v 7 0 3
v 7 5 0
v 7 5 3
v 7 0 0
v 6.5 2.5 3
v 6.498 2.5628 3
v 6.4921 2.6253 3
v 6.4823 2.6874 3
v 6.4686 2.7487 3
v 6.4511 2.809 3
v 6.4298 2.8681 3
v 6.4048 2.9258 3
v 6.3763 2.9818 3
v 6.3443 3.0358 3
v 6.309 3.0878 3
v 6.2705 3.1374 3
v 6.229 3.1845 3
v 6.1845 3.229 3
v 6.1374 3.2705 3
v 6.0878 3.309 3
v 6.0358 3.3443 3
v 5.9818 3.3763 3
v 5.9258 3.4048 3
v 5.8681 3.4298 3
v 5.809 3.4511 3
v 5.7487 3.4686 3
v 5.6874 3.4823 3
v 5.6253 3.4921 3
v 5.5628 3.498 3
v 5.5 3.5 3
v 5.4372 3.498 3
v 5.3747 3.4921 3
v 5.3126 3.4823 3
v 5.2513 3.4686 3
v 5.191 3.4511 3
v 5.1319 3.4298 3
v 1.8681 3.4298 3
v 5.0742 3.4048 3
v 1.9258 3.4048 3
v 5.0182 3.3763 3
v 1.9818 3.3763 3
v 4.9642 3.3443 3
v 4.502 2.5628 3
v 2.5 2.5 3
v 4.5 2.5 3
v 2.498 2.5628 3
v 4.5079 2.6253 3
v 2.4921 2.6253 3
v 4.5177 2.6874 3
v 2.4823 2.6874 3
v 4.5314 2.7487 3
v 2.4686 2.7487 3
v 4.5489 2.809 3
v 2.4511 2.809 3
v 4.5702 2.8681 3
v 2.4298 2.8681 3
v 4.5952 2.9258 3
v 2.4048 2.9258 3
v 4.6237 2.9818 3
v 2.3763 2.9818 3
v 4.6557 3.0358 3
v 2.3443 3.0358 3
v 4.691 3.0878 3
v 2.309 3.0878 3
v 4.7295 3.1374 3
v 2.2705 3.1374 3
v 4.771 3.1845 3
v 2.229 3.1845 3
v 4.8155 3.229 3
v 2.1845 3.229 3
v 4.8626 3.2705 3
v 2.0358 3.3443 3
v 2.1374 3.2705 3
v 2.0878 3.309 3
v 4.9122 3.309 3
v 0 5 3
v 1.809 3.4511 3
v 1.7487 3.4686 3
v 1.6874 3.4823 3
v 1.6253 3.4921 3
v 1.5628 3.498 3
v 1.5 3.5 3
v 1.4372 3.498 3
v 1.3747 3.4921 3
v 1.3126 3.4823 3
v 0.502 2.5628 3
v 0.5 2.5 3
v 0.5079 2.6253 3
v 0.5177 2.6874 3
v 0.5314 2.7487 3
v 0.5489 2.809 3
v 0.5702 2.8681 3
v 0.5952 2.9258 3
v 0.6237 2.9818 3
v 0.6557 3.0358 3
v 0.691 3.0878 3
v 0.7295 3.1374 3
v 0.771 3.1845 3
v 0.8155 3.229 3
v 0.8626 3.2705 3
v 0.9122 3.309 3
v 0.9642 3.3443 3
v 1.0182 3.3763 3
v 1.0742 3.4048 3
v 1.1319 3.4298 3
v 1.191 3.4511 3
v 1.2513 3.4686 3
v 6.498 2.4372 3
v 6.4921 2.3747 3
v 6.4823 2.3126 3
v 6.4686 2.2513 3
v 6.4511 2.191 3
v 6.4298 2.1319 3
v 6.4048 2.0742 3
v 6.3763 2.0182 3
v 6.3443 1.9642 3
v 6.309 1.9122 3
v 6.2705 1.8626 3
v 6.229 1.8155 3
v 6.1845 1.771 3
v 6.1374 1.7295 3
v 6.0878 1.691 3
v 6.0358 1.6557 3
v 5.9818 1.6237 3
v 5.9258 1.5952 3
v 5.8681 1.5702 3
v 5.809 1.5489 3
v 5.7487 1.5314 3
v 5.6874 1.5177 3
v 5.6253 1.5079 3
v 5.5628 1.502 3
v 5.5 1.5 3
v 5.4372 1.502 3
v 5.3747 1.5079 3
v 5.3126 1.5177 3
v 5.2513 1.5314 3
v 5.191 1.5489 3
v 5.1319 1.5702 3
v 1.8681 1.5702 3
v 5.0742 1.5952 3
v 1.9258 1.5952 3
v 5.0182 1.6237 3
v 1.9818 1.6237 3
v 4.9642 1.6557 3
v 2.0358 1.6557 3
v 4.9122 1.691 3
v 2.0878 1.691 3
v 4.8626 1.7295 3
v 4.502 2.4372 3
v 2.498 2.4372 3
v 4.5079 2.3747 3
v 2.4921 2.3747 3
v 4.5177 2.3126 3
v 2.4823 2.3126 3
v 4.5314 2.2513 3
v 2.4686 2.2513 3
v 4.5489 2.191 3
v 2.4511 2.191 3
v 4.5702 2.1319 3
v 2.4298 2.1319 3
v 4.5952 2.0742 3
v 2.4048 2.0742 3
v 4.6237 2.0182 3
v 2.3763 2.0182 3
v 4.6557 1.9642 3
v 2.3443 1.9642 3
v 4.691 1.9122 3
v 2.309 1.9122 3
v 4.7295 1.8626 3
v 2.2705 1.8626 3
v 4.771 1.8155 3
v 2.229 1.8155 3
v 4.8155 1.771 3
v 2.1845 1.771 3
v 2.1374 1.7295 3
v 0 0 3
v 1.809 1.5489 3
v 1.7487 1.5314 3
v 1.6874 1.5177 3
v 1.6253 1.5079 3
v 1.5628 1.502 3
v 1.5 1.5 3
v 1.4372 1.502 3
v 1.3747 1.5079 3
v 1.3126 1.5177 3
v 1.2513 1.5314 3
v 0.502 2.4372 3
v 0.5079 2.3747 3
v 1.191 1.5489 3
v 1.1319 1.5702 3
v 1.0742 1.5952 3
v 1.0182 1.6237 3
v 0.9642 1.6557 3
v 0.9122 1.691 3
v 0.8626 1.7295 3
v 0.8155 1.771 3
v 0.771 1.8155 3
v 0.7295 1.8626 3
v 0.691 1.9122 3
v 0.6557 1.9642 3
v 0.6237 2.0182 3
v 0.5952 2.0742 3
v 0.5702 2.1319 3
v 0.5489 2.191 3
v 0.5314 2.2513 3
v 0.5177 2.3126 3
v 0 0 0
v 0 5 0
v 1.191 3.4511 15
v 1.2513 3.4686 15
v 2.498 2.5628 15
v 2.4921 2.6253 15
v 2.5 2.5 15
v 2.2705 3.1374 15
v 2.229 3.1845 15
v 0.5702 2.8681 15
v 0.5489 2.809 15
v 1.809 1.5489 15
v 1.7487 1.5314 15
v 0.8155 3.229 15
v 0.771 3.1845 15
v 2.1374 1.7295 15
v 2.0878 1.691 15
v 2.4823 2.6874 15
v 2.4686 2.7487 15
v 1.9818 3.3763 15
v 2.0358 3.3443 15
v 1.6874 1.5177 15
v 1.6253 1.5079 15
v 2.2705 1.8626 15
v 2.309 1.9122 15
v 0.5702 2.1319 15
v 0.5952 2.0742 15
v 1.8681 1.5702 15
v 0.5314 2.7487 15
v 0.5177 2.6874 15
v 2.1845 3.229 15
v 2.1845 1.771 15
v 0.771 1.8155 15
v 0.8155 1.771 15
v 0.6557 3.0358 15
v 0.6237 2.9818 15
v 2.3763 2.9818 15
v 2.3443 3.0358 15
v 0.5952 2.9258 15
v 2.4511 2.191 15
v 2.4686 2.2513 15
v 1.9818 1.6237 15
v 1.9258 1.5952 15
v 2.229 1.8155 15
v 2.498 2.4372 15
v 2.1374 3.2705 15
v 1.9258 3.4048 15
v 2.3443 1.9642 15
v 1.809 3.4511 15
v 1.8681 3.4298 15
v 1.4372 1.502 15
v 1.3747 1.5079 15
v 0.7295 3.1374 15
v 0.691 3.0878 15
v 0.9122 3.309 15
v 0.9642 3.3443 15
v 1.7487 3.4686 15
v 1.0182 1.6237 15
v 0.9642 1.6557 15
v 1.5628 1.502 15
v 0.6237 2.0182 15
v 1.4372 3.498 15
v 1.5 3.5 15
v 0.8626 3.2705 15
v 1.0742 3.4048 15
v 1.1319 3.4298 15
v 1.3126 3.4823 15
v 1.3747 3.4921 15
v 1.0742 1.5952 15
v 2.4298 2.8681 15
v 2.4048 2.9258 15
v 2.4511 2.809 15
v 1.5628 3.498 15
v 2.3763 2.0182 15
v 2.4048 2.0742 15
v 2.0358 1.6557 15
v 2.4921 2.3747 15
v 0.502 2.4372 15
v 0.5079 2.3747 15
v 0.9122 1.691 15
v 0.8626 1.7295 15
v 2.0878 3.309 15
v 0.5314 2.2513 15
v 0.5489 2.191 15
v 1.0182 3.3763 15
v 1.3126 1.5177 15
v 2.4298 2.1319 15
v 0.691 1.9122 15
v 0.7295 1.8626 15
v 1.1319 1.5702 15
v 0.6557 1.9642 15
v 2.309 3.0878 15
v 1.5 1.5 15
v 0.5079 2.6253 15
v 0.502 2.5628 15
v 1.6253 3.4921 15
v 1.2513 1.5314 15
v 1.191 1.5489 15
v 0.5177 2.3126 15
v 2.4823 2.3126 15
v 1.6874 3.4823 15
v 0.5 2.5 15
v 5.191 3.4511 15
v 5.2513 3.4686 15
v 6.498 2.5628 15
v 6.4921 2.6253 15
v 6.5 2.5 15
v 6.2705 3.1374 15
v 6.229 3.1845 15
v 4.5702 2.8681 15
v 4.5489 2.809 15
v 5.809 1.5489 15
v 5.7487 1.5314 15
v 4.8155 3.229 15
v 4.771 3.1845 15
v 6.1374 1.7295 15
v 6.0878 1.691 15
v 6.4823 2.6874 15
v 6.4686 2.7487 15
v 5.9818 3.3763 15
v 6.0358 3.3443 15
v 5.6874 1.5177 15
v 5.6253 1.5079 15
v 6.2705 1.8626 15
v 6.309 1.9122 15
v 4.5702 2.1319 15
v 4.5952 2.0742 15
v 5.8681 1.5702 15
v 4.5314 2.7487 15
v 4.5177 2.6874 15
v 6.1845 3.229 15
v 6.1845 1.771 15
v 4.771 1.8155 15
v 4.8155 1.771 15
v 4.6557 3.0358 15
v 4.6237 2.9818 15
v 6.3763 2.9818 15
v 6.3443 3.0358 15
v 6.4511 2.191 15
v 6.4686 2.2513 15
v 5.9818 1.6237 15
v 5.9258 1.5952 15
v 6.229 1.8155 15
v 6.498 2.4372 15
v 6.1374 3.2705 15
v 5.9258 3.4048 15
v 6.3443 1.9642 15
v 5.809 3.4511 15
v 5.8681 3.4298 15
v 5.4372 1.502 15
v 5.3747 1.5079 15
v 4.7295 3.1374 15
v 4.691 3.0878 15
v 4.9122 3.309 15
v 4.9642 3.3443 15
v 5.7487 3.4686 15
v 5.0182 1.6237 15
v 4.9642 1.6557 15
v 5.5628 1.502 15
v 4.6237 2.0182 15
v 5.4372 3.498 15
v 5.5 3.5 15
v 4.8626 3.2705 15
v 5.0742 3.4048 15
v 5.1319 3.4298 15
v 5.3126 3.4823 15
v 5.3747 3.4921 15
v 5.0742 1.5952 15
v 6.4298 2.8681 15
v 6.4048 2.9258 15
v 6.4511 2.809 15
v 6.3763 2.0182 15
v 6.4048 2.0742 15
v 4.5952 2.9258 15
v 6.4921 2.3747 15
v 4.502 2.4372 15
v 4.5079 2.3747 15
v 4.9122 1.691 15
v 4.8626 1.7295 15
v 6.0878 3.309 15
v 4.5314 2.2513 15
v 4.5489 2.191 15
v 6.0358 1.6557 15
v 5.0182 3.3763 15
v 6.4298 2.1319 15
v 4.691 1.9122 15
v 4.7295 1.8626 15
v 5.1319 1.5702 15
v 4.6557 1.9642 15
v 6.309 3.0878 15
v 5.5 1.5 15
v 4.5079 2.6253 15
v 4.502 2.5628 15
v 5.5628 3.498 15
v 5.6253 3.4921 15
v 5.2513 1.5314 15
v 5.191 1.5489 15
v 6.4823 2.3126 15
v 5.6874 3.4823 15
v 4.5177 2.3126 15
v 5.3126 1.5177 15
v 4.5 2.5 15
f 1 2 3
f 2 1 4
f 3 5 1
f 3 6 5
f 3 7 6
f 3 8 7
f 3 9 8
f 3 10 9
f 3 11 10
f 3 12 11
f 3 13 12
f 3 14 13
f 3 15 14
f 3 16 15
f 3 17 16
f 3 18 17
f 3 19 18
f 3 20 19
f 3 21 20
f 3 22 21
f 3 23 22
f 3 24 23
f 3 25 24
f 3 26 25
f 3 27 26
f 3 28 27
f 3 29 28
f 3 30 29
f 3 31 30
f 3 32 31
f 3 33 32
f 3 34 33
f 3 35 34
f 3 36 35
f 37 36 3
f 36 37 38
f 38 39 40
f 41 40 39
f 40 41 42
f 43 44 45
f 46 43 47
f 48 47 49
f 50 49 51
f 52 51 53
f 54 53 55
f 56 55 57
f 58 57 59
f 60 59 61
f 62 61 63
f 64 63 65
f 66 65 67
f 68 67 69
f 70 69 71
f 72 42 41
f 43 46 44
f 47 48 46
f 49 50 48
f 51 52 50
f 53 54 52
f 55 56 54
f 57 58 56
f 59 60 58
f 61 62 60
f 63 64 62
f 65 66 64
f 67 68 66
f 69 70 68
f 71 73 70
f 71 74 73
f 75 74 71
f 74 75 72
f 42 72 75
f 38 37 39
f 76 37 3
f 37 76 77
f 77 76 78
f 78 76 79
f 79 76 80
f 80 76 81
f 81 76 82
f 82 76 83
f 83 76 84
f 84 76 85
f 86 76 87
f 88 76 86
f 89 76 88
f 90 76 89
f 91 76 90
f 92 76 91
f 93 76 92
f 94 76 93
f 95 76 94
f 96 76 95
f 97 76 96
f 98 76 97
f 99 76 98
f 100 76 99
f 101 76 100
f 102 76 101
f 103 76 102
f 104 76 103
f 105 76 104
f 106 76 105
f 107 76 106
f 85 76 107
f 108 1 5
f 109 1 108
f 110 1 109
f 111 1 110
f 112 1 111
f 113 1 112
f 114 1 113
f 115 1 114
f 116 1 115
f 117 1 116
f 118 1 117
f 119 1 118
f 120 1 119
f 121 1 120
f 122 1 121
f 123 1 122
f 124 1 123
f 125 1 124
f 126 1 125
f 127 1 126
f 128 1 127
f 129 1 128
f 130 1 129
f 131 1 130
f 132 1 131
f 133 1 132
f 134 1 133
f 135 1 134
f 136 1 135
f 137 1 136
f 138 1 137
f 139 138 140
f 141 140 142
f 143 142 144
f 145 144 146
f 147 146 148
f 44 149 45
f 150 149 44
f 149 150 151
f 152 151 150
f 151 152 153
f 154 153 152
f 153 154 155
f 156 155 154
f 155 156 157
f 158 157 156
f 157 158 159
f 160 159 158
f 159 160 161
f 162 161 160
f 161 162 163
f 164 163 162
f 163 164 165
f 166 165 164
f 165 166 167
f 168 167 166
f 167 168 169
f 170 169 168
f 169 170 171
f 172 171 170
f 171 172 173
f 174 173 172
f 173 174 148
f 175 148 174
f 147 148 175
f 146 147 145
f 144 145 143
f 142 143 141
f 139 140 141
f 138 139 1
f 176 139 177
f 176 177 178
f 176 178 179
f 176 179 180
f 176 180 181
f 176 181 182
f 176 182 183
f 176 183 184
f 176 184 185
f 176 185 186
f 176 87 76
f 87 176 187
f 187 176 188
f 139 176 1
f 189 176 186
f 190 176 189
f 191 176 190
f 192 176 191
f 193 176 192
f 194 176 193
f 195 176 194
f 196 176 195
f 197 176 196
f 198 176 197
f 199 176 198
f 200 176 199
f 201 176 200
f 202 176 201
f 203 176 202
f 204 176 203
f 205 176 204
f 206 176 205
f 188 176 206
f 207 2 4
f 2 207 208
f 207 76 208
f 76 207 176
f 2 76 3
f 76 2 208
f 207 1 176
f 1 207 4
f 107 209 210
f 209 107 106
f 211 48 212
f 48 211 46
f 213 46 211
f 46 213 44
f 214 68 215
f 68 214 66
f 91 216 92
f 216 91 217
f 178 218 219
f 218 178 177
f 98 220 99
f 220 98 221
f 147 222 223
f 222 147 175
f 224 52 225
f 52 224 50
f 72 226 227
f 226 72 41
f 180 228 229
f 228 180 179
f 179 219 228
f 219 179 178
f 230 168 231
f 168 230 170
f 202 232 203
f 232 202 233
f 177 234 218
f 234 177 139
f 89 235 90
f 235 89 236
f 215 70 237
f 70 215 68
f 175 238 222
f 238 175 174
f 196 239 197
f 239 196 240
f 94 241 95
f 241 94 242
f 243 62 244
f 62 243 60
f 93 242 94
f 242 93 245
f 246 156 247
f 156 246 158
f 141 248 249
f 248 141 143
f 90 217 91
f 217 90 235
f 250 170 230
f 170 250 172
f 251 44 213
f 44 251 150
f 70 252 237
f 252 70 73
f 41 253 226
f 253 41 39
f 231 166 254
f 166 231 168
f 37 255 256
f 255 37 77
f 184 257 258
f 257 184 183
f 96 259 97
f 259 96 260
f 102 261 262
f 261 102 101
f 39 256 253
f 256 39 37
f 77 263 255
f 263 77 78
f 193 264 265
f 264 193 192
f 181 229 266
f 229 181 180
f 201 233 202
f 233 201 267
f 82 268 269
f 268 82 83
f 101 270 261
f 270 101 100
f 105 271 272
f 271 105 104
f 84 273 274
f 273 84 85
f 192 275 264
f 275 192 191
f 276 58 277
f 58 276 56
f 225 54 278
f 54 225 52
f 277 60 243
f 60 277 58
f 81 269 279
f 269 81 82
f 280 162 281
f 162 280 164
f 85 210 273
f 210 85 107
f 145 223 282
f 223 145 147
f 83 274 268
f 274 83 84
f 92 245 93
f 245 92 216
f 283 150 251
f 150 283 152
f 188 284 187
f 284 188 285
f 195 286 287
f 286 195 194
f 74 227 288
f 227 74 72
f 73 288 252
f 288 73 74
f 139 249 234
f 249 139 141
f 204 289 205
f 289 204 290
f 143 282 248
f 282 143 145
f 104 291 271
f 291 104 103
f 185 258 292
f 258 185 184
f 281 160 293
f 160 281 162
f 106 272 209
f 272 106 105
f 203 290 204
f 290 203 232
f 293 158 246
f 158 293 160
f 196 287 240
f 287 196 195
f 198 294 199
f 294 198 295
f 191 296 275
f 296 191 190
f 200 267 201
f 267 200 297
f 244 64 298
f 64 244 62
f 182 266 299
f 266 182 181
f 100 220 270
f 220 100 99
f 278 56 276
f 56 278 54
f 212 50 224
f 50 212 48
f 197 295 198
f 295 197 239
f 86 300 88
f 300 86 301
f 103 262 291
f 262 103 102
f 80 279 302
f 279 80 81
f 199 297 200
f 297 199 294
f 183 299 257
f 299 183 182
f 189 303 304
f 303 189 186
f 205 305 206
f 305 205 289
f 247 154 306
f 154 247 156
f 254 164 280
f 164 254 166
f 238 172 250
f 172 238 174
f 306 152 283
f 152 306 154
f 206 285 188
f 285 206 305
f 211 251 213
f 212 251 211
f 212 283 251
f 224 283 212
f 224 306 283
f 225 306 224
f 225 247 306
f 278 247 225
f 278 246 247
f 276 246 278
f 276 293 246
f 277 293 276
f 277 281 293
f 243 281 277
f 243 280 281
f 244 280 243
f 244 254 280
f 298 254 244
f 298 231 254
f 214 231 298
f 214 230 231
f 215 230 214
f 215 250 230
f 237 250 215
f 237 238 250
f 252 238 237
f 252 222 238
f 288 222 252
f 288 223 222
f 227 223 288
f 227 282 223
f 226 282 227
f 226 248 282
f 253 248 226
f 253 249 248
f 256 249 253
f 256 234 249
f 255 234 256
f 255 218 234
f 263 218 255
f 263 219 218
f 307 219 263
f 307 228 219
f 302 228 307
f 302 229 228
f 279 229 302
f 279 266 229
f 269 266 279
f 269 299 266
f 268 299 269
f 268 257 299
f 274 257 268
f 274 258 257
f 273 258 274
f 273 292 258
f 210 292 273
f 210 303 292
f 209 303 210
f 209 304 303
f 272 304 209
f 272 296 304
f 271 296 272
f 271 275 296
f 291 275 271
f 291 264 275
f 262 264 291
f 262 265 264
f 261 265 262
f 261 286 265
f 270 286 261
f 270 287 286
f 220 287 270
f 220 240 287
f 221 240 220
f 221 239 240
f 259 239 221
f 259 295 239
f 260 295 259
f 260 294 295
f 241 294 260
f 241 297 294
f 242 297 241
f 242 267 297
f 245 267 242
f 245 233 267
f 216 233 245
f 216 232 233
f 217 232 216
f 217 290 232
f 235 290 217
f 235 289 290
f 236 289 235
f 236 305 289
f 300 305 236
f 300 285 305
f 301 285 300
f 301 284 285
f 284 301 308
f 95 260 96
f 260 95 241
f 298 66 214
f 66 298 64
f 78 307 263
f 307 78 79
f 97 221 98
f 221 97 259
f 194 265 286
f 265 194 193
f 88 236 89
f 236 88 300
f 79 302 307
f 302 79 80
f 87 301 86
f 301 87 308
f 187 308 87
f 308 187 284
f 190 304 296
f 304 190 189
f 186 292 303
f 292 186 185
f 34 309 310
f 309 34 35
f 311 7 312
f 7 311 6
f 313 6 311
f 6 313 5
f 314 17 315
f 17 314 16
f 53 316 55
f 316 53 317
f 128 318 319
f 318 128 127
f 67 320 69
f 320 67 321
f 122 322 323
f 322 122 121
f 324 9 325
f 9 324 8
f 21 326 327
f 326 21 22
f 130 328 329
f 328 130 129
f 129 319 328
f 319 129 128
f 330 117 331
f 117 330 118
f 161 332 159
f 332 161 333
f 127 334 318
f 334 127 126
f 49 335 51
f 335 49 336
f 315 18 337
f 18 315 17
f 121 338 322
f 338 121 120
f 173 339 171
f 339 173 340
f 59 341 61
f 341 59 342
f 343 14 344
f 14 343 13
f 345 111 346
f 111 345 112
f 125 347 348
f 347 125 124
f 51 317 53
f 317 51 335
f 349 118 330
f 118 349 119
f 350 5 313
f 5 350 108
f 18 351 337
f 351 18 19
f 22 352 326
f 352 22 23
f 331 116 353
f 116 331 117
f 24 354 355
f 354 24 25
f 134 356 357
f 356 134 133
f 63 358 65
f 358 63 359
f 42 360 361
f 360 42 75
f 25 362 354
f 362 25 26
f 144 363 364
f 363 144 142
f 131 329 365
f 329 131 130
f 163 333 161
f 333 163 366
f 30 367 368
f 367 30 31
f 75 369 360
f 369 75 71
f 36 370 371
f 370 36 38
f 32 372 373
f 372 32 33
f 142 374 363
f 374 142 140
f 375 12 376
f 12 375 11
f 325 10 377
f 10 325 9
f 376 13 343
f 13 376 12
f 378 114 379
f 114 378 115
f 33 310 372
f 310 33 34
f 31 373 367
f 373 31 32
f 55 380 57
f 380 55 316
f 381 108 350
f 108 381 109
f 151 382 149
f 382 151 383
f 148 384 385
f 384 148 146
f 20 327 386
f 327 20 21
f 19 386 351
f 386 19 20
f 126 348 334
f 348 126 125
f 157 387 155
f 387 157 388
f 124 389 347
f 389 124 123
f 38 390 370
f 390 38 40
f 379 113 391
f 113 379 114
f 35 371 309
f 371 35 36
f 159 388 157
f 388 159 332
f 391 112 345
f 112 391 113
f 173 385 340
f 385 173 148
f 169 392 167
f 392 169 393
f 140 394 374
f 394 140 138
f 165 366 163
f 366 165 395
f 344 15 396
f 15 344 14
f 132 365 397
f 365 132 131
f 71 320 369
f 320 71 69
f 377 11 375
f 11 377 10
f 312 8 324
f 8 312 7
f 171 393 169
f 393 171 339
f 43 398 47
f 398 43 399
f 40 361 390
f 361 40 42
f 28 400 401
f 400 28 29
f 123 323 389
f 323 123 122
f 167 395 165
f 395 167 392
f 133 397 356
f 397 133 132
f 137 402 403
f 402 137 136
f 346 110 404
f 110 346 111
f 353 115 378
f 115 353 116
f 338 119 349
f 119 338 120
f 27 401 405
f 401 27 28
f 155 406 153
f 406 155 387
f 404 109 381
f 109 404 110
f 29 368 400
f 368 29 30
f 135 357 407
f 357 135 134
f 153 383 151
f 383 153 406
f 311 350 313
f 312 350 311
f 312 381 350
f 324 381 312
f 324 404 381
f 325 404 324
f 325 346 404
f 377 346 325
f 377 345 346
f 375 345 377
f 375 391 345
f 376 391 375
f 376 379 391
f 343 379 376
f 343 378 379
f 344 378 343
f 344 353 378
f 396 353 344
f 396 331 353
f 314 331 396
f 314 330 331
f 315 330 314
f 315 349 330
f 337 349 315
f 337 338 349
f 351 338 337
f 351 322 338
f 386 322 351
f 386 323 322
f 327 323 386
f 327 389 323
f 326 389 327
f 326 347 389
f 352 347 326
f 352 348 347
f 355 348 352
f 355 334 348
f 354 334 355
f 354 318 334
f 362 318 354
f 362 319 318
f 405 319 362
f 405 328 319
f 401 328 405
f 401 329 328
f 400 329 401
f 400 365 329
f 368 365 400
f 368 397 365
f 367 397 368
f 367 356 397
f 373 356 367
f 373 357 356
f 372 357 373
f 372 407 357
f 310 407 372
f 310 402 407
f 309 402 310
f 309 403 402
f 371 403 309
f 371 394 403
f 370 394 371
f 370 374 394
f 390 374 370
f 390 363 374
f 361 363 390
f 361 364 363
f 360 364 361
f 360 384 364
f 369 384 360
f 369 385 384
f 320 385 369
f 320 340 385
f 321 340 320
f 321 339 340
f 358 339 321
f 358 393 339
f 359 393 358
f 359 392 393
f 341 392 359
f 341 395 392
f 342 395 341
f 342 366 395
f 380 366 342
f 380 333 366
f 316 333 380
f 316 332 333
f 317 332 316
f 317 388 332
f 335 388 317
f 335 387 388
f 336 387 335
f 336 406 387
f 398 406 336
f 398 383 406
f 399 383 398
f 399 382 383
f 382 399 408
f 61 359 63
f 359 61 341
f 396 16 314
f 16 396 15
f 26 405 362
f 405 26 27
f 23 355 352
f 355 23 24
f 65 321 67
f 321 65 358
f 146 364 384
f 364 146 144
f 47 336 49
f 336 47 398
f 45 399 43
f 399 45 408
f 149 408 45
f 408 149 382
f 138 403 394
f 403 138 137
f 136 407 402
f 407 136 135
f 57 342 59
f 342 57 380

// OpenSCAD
lockHeight = 15;
lockWidth = 7;
lockDepth = 5;
lockBaseHeight = 3;

lock();

module lock() {
    boltRadius = 1;
    cube([lockWidth, lockDepth, lockBaseHeight]);
    translate([1.5, lockDepth / 2, 0]) {
        cylinder(h = lockHeight, r = boltRadius, $fn=100);
    }
    translate([5.5, lockDepth / 2, 0]) {
        cylinder(h = lockHeight, r = boltRadius, $fn=100);
    }
}
